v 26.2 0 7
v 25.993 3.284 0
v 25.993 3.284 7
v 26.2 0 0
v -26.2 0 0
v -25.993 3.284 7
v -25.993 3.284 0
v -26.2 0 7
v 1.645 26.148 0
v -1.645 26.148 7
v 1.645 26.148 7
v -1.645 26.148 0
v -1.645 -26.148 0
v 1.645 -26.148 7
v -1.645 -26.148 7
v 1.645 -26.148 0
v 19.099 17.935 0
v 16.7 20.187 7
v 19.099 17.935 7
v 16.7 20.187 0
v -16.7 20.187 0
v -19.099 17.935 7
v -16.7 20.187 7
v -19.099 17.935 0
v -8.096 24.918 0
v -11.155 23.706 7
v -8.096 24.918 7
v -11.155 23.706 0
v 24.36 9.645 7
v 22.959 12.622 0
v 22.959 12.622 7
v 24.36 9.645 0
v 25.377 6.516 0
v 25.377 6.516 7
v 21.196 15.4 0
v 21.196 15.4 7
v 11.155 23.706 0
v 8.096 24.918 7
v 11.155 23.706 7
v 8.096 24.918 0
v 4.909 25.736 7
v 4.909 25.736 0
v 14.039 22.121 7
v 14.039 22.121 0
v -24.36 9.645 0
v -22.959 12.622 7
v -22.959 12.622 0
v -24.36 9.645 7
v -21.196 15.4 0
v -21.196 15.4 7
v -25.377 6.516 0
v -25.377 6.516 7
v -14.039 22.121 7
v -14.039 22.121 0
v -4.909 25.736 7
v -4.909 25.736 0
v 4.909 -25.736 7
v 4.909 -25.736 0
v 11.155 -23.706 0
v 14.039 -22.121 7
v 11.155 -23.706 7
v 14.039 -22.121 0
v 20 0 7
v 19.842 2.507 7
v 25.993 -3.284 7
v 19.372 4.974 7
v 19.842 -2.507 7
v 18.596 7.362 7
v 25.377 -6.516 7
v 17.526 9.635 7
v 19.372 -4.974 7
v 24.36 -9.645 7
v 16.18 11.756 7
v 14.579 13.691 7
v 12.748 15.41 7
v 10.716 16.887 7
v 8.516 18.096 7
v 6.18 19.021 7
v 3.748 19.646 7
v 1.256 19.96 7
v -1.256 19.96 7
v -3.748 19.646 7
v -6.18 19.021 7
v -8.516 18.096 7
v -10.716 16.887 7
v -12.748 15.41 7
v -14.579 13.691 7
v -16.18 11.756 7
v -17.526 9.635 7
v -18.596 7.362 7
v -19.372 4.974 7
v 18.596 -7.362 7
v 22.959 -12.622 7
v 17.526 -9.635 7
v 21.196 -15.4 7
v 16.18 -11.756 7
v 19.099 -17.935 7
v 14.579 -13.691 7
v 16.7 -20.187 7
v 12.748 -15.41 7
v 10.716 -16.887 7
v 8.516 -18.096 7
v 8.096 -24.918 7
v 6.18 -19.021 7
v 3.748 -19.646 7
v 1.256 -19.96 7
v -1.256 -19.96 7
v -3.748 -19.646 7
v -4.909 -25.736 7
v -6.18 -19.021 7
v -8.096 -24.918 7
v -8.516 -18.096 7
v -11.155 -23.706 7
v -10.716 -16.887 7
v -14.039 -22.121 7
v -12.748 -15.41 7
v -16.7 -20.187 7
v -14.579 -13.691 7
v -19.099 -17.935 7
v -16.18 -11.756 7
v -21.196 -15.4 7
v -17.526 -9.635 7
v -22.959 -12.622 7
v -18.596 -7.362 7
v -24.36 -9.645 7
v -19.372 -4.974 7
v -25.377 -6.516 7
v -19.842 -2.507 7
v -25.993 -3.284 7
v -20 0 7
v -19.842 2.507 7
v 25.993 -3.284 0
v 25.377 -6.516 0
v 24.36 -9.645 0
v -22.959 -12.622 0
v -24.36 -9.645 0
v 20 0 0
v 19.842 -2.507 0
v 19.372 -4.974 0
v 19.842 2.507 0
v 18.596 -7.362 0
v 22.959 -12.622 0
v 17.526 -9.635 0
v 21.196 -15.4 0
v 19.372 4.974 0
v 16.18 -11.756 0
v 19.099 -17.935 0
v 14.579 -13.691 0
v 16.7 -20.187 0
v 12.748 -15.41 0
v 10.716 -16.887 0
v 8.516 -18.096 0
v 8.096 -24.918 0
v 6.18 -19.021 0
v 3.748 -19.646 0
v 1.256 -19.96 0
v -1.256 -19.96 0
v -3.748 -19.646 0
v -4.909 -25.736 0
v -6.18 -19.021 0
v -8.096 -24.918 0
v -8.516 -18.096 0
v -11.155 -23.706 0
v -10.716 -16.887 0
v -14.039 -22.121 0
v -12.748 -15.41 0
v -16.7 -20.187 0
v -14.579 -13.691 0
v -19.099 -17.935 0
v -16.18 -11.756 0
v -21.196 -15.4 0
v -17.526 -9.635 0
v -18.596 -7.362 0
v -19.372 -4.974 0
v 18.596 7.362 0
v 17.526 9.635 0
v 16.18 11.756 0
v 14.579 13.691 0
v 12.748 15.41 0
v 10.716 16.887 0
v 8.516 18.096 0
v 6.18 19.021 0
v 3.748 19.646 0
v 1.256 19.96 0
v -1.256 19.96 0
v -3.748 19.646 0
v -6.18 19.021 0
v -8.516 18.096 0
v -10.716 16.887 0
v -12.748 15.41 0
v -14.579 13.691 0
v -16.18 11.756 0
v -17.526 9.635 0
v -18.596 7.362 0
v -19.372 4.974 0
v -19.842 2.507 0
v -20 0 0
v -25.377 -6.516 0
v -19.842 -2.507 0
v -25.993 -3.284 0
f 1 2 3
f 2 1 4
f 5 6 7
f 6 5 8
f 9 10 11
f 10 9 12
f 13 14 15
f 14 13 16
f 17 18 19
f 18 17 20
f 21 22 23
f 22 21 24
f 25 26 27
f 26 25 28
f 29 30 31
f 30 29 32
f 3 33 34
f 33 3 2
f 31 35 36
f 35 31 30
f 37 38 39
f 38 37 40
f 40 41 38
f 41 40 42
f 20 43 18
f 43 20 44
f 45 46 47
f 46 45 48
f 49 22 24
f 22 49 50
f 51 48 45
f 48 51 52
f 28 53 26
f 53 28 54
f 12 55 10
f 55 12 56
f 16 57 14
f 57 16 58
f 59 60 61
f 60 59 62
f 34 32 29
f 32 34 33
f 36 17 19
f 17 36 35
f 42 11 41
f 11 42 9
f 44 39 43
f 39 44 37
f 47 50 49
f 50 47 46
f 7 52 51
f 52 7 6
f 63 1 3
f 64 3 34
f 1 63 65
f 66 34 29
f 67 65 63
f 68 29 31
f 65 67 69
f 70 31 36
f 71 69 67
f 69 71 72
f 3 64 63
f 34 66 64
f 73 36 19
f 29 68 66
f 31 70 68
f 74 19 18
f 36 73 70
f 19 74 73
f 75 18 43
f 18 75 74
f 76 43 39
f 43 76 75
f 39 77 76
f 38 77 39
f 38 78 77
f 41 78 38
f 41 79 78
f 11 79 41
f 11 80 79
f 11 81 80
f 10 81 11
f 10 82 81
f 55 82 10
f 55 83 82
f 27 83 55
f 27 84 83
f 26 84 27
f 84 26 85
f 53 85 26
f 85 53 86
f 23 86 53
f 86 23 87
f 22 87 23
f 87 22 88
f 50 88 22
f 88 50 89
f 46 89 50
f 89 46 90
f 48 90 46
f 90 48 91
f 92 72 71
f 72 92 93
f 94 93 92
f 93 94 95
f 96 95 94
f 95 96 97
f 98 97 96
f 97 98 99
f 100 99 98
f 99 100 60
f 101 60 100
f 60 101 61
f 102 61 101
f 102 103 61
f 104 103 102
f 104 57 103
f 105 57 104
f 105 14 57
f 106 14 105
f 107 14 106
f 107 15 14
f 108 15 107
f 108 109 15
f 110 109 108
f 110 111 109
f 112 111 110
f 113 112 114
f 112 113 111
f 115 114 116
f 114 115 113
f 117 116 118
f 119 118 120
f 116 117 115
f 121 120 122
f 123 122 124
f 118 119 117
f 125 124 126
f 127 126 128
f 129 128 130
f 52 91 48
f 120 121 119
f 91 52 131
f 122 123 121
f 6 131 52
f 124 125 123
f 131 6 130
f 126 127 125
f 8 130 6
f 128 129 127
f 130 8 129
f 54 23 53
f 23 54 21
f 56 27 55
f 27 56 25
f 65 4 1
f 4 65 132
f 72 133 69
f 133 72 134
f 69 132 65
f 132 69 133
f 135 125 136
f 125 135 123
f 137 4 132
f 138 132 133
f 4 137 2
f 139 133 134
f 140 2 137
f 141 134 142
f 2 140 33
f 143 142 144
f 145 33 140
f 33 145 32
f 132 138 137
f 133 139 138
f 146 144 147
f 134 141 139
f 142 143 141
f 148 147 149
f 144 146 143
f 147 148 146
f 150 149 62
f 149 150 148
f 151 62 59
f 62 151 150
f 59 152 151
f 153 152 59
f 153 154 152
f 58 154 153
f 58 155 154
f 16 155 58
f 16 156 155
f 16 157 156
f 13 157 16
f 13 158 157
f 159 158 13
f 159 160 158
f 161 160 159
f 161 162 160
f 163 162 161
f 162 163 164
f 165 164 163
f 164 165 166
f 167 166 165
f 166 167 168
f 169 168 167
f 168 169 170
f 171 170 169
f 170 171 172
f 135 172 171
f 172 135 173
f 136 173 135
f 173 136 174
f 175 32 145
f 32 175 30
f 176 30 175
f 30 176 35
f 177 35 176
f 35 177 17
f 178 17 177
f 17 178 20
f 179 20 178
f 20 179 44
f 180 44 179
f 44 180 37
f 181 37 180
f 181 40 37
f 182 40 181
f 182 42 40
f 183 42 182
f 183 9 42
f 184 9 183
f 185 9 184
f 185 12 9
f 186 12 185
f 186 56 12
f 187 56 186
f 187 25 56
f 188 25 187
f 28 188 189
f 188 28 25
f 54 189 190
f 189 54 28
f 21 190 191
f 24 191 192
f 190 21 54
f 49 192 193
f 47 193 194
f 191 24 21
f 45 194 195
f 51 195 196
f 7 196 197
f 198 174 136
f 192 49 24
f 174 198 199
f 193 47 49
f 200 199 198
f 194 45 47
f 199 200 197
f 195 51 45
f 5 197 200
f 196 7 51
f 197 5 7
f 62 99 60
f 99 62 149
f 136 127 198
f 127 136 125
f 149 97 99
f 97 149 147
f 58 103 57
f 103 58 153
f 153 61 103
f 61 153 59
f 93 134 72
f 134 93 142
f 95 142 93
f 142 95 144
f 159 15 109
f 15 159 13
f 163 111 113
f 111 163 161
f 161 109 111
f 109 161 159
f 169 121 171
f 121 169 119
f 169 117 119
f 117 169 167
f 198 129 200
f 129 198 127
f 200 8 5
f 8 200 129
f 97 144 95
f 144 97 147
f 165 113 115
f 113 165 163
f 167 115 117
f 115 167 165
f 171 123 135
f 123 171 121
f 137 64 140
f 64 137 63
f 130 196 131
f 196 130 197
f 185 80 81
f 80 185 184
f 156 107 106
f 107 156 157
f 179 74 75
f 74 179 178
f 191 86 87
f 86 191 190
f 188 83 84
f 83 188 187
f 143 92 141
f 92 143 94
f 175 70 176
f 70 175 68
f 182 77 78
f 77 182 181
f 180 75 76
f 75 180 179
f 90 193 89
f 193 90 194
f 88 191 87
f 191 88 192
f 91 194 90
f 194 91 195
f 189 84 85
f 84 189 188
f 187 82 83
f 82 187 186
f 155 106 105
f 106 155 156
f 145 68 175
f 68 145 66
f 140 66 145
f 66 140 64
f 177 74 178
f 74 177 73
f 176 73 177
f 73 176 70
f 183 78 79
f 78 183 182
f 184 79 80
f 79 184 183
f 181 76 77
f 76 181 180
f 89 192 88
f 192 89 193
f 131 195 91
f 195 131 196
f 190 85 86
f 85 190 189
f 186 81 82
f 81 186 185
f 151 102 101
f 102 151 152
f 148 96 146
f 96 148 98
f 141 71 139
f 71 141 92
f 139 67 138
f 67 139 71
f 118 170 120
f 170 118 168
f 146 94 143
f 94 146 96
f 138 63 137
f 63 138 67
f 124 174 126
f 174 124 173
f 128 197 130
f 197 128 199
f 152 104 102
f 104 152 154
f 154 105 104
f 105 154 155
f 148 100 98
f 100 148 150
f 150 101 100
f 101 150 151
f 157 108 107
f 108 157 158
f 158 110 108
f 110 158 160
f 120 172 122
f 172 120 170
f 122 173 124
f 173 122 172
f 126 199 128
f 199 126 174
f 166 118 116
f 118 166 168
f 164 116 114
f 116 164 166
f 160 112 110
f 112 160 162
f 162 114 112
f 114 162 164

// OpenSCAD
$fn = 50;


difference() {
	union() {
		translate(v = [0, 0, 0]) {
			rotate(a = [0, 0, 0]) {
				cylinder(h = 7, r = 26.2000000000);
			}
		}
	}
	union() {
		translate(v = [0, 0, 0]) {
			rotate(a = [0, 0, 0]) {
				cylinder(h = 7, r = 20.0000000000);
			}
		}
	}
}
